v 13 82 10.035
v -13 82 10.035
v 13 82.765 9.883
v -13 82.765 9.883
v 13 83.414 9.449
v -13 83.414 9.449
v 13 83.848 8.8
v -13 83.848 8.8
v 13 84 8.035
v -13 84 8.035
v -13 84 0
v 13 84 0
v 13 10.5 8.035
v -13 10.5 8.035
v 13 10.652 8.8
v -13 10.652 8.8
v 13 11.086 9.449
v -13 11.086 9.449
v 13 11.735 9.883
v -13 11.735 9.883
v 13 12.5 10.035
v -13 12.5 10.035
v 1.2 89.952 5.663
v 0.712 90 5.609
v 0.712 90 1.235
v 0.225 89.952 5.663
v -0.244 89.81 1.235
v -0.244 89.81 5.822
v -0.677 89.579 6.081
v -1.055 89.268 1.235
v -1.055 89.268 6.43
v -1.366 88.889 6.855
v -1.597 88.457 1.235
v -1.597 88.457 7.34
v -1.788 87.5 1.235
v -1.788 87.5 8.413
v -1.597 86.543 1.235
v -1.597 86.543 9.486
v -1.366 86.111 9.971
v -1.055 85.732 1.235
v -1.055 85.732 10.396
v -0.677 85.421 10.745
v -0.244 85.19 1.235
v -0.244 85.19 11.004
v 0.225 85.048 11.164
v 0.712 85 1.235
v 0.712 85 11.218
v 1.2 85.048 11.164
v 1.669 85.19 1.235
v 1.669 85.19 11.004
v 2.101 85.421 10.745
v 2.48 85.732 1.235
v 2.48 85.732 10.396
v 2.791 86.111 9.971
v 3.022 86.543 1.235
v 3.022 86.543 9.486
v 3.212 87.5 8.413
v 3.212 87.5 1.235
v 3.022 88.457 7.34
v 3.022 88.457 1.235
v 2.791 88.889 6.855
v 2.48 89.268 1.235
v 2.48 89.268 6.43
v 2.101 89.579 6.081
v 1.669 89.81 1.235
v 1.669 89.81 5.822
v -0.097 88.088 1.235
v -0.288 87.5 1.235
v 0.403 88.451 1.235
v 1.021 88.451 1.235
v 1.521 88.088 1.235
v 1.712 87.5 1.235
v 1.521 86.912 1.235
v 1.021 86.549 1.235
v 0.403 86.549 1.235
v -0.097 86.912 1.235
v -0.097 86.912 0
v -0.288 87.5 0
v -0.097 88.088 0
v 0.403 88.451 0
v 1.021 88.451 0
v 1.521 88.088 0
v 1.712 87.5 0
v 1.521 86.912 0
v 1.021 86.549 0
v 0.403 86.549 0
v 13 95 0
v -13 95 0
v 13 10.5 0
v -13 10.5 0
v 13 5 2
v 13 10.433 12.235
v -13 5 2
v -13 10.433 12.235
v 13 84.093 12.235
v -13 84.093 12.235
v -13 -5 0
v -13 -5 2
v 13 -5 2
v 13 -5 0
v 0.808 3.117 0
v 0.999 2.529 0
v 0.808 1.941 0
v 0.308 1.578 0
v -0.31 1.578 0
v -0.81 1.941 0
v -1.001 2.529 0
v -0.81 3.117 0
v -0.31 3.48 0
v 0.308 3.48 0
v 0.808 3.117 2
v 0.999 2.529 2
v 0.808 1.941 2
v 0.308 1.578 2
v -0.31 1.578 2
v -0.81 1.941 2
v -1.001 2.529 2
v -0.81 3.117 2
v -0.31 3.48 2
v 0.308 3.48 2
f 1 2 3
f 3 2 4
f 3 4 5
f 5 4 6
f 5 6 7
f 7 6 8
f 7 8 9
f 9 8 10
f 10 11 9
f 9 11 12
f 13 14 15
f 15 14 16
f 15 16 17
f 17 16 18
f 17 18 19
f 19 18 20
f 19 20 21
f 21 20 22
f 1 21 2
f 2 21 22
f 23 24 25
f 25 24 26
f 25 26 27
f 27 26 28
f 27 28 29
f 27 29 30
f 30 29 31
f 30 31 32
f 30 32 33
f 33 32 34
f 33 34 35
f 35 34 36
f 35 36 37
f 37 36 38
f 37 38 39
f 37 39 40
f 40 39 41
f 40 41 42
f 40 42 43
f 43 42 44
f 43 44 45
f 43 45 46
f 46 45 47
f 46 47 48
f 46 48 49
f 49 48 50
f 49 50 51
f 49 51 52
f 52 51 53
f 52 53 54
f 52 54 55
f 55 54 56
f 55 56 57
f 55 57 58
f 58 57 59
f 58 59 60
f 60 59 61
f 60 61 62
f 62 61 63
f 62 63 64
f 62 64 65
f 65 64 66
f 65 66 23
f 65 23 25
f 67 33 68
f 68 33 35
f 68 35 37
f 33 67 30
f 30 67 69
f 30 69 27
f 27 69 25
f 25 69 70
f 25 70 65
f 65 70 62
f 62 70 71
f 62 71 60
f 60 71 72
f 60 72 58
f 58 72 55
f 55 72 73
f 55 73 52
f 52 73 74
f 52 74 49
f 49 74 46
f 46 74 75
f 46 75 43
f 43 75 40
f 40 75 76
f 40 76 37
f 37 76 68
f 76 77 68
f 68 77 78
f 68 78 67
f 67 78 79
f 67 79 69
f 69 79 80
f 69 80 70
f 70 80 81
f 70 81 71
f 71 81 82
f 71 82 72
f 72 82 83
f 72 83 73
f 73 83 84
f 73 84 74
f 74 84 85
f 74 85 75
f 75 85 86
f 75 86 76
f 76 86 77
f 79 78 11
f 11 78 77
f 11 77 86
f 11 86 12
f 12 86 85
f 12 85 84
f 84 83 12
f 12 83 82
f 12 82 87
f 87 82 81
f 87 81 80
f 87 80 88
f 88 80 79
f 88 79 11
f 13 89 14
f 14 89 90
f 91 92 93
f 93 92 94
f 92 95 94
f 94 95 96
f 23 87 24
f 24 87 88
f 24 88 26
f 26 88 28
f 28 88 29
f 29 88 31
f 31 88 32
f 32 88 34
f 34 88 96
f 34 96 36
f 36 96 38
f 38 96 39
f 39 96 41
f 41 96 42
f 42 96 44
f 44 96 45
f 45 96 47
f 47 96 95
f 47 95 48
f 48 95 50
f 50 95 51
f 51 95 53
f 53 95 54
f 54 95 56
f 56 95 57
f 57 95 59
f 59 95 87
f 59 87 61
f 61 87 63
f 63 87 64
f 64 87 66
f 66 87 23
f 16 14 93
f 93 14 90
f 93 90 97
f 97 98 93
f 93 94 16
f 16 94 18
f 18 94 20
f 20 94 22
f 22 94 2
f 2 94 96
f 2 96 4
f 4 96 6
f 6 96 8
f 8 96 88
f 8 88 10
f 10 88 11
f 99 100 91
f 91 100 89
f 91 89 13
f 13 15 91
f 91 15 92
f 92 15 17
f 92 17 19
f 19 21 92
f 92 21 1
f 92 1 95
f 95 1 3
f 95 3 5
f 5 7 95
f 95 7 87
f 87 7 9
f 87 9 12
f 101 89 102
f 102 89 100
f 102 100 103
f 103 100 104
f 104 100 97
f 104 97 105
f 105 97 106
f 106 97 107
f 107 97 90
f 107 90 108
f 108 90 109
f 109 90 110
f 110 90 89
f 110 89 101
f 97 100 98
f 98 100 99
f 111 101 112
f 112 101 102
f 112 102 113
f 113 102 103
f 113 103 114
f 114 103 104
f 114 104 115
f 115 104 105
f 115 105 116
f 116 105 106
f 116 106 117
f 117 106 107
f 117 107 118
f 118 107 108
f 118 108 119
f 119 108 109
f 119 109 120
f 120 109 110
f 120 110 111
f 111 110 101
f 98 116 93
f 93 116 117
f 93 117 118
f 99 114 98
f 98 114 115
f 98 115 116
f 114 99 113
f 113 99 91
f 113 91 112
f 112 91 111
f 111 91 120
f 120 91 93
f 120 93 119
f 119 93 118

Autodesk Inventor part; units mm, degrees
ref_plane "YZ Plane" through (0, 0, 0) normal (1, 0, 0) x (0, 1, 0)
ref_plane "XZ Plane" through (0, 0, 0) normal (0, 1, 0) x (-1, 0, 0)
sketch "スケッチ1" plane through (0, 0, 0) normal (0, 0, 1) x (1, 0, 0)
  ellipse E0 centre (-0.0006, 2.529) end of major axis (-0.0006, 5.5657) minor radius 3.0367 (2.9994, 3) -> (1.7646, 5) ccw projected
  line L0 (1.7646, 5) -> (-1.7658, 5) projected
  ellipse E1 centre (-0.0006, 2.529) end of major axis (-0.0006, 5.5657) minor radius 3.0367 (-1.7658, 5) -> (-3.0006, 3) ccw projected
  arc A0 (-6.0006, 0) -> (-3.0006, 3) centre (-6.0006, 3) ccw projected
  line L1 (-6.0006, 0) -> (-13.25, 0) projected
  line L2 (-13.25, -5) -> (-13.25, 0) projected
  line L3 (-13.25, -5) -> (13.25, -5) projected
  line L4 (13.25, 0) -> (13.25, -5) projected
  line L5 (13.25, 0) -> (5.9994, 0) projected
  ellipse E2 centre (5.9994, 3) end of major axis (8.9994, 3) minor radius 3 (2.9994, 3) -> (5.9994, 0) ccw projected
  circle A1 centre (-0.0006, 2.529) radius 1 projected
  point P0 (0, 0)
ref_plane "作業平面1" through (13.25, -5, 2) normal (0, 0, 1) x (1, 0, 0)
extrude "押し出し1" add sketch "スケッチ1" along normal up to surface (2 mm away)
sketch "スケッチ2" plane through (-13.25, -5, 2) normal (0, 0, 1) x (1, 0, 0)
  circle A0 centre (13.2494, 7.529) radius 1 projected
  line L0 (19.2494, 5) -> (26.5, 5) projected
  ellipse E0 centre (19.2494, 8) end of major axis (16.2494, 8) minor radius 3 (16.2494, 8) -> (19.2494, 5) ccw projected
  ellipse E1 centre (13.2494, 7.529) end of major axis (13.2494, 10.5657) minor radius 3.0367 (16.2494, 8) -> (15.0146, 10) ccw projected
  line L1 (11.4842, 10) -> (15.0146, 10) projected
  ellipse E2 centre (13.2494, 7.529) end of major axis (13.2494, 10.5657) minor radius 3.0367 (11.4842, 10) -> (10.2494, 8) ccw projected
  arc A1 (7.2494, 5) -> (10.2494, 8) centre (7.2494, 8) ccw projected
  line L2 (0, 5) -> (7.2494, 5) projected
  line L3 (0, 0) -> (0, 5) projected
  line L4 (26.5, 0) -> (0, 0) projected
  line L5 (26.5, 5) -> (26.5, 0) projected
  line L6 (26.5, 0) -> (26.25, 0)
  line L7 (26.25, 0) -> (26.25, 5)
  line L8 (26.25, 5) -> (26.5, 5)
  line L9 (26.5, 5) -> (26.5, 0)
  line L10 (0, 0) -> (0.25, 0)
  line L11 (0.25, 0) -> (0.25, 5)
  line L12 (0.25, 5) -> (0, 5)
  line L13 (0, 5) -> (0, 0)
  point P0 (13.25, 5)
  point P1 (0.25, 0)
  point P2 (26.25, 0)
  dimension "d2" = 0.25
  dimension "d3" = 0.25
extrude "押し出し2" cut sketch "スケッチ2" against normal blind 10 contours L0 L5 L4 L7 | L4 L3 L2 L11
ref_plane "作業平面2" through (-13, 0, 2) normal (-1, 0, 0) x (0, -1, 0)
sketch "スケッチ3" plane through (-13, 0, 2) normal (-1, 0, 0) x (0, -1, 0)
  line L0 (-95, -2) -> (-84.0931, 10.235) projected
  line L1 (-84.0931, 10.235) -> (-10.4333, 10.235) projected
  line L2 (-10.4333, 10.235) -> (-5, 0) projected
  line L3 (-5, 0) -> (5, 0) projected
  line L4 (5, 0) -> (5, -3) projected
  line L5 (-95, -3) -> (5, -3) projected
  line L6 (-95, -2) -> (-95, -3) projected
  line L7 (-11, -11.065) -> (-11, 7.535) projected
  line L8 (-11, 7.535) -> (-84.5, 7.535) projected
  line L9 (-5, -2) -> (-5, 0) projected
  line L10 (-5, -2) -> (-10.5, -2)
  line L11 (-10.5, -2) -> (-10.5, 8.035)
  line L12 (-10.5, 8.035) -> (-12.7452, 8.035)
  line L13 (-12.7452, 8.035) -> (-84.6975, 8.035)
  line L14 (-85, -6.5) -> (-85, -5) projected
  line L15 (-85, -2) -> (-85, -5) projected
  line L16 (-85, -2) -> (-85, 8.035)
  line L17 (-85, 8.035) -> (-84.5, 8.035)
  line L18 (-85, -2) -> (-95, -2)
  point P0 (0, -2)
  dimension "d6" = 0.5
  dimension "d7" = 0.5
extrude "押し出し3" add sketch "スケッチ3" against normal up to surface (26 mm away) contours L0 L1 L2 L9 L10 L11 L12 L13 L17 L16 L18
sketch "スケッチ4" plane through (0, 0, 0) normal (0, 0, -1) x (-1, 0, 0)
  circle A0 centre (0.0006, 2.529) radius 1 projected
  line L0 (13, -5) -> (13, 0) projected
  line L1 (6.0006, 0) -> (13, 0) projected
  arc A1 (3.0006, 3) -> (6.0006, 0) centre (6.0006, 3) ccw projected
  ellipse E0 centre (0.0006, 2.529) end of major axis (0.0006, 5.5657) minor radius 3.0367 (3.0006, 3) -> (1.7658, 5) ccw projected
  line L2 (13, 5) -> (1.7658, 5) projected
  line L3 (13, 10.5) -> (13, 5) projected
  line L4 (13, 10.5) -> (-13, 10.5) projected
  line L5 (-13, 5) -> (-13, 10.5) projected
  line L6 (-1.7646, 5) -> (-13, 5) projected
  ellipse E1 centre (0.0006, 2.529) end of major axis (0.0006, 5.5657) minor radius 3.0367 (-1.7646, 5) -> (-2.9994, 3) ccw projected
  ellipse E2 centre (-5.9994, 3) end of major axis (-2.9994, 3) minor radius 3 (-5.9994, 0) -> (-2.9994, 3) ccw projected
  line L7 (-13, 0) -> (-5.9994, 0) projected
  line L8 (-13, 0) -> (-13, -5) projected
  line L9 (13, -5) -> (-13, -5) projected
  line L10 (-13, 0) -> (-13, 5)
  line L11 (13, 5) -> (13, 0)
  point P0 (0, 0)
extrude "押し出し4" add sketch "スケッチ4" against normal up to surface (2 mm away) contours L1 A1 E0 L2 L11 | L10 L6 E1 E2 L7
sketch "スケッチ5" plane through (-13, 10.4333, 12.235) normal (0, 0, 1) x (1, 0, 0)
  circle A0 centre (13.7123, 77.0667) radius 1 projected
  circle A1 centre (13.7123, 77.0667) radius 2.5
  point P0 (13, -10.4333)
  dimension "d12" = 5
extrude "押し出し5" cut sketch "スケッチ5" against normal blind 13 contours A0
sketch "スケッチ6" plane through (-13, 10.4333, 12.235) normal (0, 0, 1) x (1, 0, 0)
  circle A0 centre (13.7123, 77.0667) radius 1 projected
  circle A1 centre (13.7123, 77.0667) radius 2.5
  point P0 (13, -10.4333)
  dimension "d15" = 5
extrude "押し出し6" cut sketch "スケッチ6" against normal blind 11 contours A0 | A1
sketch "スケッチ7" plane through (-13, 85, 0) normal (0, -1, 0) x (1, 0, 0)
  line L0 (26, 10.035) -> (26, 0) projected
  line L1 (13.7123, 10.035) -> (26, 10.035) projected
  line L2 (13.7123, 10.035) -> (13.7123, 1.235) projected
  line L3 (0, 10.035) -> (13.7123, 10.035) projected
  line L4 (0, 0) -> (0, 10.035) projected
  line L5 (0, 0) -> (26, 0) projected
  point P0 (13, 0)
extrude "押し出し7" add sketch "スケッチ7" along normal blind 1
fillet "フィレット1" radius 2 2 edges at (0, 10.5, 10.035) (0, 84, 10.035)
equation "\"d7\" = d6"
properties part number "NNfront-huta"
